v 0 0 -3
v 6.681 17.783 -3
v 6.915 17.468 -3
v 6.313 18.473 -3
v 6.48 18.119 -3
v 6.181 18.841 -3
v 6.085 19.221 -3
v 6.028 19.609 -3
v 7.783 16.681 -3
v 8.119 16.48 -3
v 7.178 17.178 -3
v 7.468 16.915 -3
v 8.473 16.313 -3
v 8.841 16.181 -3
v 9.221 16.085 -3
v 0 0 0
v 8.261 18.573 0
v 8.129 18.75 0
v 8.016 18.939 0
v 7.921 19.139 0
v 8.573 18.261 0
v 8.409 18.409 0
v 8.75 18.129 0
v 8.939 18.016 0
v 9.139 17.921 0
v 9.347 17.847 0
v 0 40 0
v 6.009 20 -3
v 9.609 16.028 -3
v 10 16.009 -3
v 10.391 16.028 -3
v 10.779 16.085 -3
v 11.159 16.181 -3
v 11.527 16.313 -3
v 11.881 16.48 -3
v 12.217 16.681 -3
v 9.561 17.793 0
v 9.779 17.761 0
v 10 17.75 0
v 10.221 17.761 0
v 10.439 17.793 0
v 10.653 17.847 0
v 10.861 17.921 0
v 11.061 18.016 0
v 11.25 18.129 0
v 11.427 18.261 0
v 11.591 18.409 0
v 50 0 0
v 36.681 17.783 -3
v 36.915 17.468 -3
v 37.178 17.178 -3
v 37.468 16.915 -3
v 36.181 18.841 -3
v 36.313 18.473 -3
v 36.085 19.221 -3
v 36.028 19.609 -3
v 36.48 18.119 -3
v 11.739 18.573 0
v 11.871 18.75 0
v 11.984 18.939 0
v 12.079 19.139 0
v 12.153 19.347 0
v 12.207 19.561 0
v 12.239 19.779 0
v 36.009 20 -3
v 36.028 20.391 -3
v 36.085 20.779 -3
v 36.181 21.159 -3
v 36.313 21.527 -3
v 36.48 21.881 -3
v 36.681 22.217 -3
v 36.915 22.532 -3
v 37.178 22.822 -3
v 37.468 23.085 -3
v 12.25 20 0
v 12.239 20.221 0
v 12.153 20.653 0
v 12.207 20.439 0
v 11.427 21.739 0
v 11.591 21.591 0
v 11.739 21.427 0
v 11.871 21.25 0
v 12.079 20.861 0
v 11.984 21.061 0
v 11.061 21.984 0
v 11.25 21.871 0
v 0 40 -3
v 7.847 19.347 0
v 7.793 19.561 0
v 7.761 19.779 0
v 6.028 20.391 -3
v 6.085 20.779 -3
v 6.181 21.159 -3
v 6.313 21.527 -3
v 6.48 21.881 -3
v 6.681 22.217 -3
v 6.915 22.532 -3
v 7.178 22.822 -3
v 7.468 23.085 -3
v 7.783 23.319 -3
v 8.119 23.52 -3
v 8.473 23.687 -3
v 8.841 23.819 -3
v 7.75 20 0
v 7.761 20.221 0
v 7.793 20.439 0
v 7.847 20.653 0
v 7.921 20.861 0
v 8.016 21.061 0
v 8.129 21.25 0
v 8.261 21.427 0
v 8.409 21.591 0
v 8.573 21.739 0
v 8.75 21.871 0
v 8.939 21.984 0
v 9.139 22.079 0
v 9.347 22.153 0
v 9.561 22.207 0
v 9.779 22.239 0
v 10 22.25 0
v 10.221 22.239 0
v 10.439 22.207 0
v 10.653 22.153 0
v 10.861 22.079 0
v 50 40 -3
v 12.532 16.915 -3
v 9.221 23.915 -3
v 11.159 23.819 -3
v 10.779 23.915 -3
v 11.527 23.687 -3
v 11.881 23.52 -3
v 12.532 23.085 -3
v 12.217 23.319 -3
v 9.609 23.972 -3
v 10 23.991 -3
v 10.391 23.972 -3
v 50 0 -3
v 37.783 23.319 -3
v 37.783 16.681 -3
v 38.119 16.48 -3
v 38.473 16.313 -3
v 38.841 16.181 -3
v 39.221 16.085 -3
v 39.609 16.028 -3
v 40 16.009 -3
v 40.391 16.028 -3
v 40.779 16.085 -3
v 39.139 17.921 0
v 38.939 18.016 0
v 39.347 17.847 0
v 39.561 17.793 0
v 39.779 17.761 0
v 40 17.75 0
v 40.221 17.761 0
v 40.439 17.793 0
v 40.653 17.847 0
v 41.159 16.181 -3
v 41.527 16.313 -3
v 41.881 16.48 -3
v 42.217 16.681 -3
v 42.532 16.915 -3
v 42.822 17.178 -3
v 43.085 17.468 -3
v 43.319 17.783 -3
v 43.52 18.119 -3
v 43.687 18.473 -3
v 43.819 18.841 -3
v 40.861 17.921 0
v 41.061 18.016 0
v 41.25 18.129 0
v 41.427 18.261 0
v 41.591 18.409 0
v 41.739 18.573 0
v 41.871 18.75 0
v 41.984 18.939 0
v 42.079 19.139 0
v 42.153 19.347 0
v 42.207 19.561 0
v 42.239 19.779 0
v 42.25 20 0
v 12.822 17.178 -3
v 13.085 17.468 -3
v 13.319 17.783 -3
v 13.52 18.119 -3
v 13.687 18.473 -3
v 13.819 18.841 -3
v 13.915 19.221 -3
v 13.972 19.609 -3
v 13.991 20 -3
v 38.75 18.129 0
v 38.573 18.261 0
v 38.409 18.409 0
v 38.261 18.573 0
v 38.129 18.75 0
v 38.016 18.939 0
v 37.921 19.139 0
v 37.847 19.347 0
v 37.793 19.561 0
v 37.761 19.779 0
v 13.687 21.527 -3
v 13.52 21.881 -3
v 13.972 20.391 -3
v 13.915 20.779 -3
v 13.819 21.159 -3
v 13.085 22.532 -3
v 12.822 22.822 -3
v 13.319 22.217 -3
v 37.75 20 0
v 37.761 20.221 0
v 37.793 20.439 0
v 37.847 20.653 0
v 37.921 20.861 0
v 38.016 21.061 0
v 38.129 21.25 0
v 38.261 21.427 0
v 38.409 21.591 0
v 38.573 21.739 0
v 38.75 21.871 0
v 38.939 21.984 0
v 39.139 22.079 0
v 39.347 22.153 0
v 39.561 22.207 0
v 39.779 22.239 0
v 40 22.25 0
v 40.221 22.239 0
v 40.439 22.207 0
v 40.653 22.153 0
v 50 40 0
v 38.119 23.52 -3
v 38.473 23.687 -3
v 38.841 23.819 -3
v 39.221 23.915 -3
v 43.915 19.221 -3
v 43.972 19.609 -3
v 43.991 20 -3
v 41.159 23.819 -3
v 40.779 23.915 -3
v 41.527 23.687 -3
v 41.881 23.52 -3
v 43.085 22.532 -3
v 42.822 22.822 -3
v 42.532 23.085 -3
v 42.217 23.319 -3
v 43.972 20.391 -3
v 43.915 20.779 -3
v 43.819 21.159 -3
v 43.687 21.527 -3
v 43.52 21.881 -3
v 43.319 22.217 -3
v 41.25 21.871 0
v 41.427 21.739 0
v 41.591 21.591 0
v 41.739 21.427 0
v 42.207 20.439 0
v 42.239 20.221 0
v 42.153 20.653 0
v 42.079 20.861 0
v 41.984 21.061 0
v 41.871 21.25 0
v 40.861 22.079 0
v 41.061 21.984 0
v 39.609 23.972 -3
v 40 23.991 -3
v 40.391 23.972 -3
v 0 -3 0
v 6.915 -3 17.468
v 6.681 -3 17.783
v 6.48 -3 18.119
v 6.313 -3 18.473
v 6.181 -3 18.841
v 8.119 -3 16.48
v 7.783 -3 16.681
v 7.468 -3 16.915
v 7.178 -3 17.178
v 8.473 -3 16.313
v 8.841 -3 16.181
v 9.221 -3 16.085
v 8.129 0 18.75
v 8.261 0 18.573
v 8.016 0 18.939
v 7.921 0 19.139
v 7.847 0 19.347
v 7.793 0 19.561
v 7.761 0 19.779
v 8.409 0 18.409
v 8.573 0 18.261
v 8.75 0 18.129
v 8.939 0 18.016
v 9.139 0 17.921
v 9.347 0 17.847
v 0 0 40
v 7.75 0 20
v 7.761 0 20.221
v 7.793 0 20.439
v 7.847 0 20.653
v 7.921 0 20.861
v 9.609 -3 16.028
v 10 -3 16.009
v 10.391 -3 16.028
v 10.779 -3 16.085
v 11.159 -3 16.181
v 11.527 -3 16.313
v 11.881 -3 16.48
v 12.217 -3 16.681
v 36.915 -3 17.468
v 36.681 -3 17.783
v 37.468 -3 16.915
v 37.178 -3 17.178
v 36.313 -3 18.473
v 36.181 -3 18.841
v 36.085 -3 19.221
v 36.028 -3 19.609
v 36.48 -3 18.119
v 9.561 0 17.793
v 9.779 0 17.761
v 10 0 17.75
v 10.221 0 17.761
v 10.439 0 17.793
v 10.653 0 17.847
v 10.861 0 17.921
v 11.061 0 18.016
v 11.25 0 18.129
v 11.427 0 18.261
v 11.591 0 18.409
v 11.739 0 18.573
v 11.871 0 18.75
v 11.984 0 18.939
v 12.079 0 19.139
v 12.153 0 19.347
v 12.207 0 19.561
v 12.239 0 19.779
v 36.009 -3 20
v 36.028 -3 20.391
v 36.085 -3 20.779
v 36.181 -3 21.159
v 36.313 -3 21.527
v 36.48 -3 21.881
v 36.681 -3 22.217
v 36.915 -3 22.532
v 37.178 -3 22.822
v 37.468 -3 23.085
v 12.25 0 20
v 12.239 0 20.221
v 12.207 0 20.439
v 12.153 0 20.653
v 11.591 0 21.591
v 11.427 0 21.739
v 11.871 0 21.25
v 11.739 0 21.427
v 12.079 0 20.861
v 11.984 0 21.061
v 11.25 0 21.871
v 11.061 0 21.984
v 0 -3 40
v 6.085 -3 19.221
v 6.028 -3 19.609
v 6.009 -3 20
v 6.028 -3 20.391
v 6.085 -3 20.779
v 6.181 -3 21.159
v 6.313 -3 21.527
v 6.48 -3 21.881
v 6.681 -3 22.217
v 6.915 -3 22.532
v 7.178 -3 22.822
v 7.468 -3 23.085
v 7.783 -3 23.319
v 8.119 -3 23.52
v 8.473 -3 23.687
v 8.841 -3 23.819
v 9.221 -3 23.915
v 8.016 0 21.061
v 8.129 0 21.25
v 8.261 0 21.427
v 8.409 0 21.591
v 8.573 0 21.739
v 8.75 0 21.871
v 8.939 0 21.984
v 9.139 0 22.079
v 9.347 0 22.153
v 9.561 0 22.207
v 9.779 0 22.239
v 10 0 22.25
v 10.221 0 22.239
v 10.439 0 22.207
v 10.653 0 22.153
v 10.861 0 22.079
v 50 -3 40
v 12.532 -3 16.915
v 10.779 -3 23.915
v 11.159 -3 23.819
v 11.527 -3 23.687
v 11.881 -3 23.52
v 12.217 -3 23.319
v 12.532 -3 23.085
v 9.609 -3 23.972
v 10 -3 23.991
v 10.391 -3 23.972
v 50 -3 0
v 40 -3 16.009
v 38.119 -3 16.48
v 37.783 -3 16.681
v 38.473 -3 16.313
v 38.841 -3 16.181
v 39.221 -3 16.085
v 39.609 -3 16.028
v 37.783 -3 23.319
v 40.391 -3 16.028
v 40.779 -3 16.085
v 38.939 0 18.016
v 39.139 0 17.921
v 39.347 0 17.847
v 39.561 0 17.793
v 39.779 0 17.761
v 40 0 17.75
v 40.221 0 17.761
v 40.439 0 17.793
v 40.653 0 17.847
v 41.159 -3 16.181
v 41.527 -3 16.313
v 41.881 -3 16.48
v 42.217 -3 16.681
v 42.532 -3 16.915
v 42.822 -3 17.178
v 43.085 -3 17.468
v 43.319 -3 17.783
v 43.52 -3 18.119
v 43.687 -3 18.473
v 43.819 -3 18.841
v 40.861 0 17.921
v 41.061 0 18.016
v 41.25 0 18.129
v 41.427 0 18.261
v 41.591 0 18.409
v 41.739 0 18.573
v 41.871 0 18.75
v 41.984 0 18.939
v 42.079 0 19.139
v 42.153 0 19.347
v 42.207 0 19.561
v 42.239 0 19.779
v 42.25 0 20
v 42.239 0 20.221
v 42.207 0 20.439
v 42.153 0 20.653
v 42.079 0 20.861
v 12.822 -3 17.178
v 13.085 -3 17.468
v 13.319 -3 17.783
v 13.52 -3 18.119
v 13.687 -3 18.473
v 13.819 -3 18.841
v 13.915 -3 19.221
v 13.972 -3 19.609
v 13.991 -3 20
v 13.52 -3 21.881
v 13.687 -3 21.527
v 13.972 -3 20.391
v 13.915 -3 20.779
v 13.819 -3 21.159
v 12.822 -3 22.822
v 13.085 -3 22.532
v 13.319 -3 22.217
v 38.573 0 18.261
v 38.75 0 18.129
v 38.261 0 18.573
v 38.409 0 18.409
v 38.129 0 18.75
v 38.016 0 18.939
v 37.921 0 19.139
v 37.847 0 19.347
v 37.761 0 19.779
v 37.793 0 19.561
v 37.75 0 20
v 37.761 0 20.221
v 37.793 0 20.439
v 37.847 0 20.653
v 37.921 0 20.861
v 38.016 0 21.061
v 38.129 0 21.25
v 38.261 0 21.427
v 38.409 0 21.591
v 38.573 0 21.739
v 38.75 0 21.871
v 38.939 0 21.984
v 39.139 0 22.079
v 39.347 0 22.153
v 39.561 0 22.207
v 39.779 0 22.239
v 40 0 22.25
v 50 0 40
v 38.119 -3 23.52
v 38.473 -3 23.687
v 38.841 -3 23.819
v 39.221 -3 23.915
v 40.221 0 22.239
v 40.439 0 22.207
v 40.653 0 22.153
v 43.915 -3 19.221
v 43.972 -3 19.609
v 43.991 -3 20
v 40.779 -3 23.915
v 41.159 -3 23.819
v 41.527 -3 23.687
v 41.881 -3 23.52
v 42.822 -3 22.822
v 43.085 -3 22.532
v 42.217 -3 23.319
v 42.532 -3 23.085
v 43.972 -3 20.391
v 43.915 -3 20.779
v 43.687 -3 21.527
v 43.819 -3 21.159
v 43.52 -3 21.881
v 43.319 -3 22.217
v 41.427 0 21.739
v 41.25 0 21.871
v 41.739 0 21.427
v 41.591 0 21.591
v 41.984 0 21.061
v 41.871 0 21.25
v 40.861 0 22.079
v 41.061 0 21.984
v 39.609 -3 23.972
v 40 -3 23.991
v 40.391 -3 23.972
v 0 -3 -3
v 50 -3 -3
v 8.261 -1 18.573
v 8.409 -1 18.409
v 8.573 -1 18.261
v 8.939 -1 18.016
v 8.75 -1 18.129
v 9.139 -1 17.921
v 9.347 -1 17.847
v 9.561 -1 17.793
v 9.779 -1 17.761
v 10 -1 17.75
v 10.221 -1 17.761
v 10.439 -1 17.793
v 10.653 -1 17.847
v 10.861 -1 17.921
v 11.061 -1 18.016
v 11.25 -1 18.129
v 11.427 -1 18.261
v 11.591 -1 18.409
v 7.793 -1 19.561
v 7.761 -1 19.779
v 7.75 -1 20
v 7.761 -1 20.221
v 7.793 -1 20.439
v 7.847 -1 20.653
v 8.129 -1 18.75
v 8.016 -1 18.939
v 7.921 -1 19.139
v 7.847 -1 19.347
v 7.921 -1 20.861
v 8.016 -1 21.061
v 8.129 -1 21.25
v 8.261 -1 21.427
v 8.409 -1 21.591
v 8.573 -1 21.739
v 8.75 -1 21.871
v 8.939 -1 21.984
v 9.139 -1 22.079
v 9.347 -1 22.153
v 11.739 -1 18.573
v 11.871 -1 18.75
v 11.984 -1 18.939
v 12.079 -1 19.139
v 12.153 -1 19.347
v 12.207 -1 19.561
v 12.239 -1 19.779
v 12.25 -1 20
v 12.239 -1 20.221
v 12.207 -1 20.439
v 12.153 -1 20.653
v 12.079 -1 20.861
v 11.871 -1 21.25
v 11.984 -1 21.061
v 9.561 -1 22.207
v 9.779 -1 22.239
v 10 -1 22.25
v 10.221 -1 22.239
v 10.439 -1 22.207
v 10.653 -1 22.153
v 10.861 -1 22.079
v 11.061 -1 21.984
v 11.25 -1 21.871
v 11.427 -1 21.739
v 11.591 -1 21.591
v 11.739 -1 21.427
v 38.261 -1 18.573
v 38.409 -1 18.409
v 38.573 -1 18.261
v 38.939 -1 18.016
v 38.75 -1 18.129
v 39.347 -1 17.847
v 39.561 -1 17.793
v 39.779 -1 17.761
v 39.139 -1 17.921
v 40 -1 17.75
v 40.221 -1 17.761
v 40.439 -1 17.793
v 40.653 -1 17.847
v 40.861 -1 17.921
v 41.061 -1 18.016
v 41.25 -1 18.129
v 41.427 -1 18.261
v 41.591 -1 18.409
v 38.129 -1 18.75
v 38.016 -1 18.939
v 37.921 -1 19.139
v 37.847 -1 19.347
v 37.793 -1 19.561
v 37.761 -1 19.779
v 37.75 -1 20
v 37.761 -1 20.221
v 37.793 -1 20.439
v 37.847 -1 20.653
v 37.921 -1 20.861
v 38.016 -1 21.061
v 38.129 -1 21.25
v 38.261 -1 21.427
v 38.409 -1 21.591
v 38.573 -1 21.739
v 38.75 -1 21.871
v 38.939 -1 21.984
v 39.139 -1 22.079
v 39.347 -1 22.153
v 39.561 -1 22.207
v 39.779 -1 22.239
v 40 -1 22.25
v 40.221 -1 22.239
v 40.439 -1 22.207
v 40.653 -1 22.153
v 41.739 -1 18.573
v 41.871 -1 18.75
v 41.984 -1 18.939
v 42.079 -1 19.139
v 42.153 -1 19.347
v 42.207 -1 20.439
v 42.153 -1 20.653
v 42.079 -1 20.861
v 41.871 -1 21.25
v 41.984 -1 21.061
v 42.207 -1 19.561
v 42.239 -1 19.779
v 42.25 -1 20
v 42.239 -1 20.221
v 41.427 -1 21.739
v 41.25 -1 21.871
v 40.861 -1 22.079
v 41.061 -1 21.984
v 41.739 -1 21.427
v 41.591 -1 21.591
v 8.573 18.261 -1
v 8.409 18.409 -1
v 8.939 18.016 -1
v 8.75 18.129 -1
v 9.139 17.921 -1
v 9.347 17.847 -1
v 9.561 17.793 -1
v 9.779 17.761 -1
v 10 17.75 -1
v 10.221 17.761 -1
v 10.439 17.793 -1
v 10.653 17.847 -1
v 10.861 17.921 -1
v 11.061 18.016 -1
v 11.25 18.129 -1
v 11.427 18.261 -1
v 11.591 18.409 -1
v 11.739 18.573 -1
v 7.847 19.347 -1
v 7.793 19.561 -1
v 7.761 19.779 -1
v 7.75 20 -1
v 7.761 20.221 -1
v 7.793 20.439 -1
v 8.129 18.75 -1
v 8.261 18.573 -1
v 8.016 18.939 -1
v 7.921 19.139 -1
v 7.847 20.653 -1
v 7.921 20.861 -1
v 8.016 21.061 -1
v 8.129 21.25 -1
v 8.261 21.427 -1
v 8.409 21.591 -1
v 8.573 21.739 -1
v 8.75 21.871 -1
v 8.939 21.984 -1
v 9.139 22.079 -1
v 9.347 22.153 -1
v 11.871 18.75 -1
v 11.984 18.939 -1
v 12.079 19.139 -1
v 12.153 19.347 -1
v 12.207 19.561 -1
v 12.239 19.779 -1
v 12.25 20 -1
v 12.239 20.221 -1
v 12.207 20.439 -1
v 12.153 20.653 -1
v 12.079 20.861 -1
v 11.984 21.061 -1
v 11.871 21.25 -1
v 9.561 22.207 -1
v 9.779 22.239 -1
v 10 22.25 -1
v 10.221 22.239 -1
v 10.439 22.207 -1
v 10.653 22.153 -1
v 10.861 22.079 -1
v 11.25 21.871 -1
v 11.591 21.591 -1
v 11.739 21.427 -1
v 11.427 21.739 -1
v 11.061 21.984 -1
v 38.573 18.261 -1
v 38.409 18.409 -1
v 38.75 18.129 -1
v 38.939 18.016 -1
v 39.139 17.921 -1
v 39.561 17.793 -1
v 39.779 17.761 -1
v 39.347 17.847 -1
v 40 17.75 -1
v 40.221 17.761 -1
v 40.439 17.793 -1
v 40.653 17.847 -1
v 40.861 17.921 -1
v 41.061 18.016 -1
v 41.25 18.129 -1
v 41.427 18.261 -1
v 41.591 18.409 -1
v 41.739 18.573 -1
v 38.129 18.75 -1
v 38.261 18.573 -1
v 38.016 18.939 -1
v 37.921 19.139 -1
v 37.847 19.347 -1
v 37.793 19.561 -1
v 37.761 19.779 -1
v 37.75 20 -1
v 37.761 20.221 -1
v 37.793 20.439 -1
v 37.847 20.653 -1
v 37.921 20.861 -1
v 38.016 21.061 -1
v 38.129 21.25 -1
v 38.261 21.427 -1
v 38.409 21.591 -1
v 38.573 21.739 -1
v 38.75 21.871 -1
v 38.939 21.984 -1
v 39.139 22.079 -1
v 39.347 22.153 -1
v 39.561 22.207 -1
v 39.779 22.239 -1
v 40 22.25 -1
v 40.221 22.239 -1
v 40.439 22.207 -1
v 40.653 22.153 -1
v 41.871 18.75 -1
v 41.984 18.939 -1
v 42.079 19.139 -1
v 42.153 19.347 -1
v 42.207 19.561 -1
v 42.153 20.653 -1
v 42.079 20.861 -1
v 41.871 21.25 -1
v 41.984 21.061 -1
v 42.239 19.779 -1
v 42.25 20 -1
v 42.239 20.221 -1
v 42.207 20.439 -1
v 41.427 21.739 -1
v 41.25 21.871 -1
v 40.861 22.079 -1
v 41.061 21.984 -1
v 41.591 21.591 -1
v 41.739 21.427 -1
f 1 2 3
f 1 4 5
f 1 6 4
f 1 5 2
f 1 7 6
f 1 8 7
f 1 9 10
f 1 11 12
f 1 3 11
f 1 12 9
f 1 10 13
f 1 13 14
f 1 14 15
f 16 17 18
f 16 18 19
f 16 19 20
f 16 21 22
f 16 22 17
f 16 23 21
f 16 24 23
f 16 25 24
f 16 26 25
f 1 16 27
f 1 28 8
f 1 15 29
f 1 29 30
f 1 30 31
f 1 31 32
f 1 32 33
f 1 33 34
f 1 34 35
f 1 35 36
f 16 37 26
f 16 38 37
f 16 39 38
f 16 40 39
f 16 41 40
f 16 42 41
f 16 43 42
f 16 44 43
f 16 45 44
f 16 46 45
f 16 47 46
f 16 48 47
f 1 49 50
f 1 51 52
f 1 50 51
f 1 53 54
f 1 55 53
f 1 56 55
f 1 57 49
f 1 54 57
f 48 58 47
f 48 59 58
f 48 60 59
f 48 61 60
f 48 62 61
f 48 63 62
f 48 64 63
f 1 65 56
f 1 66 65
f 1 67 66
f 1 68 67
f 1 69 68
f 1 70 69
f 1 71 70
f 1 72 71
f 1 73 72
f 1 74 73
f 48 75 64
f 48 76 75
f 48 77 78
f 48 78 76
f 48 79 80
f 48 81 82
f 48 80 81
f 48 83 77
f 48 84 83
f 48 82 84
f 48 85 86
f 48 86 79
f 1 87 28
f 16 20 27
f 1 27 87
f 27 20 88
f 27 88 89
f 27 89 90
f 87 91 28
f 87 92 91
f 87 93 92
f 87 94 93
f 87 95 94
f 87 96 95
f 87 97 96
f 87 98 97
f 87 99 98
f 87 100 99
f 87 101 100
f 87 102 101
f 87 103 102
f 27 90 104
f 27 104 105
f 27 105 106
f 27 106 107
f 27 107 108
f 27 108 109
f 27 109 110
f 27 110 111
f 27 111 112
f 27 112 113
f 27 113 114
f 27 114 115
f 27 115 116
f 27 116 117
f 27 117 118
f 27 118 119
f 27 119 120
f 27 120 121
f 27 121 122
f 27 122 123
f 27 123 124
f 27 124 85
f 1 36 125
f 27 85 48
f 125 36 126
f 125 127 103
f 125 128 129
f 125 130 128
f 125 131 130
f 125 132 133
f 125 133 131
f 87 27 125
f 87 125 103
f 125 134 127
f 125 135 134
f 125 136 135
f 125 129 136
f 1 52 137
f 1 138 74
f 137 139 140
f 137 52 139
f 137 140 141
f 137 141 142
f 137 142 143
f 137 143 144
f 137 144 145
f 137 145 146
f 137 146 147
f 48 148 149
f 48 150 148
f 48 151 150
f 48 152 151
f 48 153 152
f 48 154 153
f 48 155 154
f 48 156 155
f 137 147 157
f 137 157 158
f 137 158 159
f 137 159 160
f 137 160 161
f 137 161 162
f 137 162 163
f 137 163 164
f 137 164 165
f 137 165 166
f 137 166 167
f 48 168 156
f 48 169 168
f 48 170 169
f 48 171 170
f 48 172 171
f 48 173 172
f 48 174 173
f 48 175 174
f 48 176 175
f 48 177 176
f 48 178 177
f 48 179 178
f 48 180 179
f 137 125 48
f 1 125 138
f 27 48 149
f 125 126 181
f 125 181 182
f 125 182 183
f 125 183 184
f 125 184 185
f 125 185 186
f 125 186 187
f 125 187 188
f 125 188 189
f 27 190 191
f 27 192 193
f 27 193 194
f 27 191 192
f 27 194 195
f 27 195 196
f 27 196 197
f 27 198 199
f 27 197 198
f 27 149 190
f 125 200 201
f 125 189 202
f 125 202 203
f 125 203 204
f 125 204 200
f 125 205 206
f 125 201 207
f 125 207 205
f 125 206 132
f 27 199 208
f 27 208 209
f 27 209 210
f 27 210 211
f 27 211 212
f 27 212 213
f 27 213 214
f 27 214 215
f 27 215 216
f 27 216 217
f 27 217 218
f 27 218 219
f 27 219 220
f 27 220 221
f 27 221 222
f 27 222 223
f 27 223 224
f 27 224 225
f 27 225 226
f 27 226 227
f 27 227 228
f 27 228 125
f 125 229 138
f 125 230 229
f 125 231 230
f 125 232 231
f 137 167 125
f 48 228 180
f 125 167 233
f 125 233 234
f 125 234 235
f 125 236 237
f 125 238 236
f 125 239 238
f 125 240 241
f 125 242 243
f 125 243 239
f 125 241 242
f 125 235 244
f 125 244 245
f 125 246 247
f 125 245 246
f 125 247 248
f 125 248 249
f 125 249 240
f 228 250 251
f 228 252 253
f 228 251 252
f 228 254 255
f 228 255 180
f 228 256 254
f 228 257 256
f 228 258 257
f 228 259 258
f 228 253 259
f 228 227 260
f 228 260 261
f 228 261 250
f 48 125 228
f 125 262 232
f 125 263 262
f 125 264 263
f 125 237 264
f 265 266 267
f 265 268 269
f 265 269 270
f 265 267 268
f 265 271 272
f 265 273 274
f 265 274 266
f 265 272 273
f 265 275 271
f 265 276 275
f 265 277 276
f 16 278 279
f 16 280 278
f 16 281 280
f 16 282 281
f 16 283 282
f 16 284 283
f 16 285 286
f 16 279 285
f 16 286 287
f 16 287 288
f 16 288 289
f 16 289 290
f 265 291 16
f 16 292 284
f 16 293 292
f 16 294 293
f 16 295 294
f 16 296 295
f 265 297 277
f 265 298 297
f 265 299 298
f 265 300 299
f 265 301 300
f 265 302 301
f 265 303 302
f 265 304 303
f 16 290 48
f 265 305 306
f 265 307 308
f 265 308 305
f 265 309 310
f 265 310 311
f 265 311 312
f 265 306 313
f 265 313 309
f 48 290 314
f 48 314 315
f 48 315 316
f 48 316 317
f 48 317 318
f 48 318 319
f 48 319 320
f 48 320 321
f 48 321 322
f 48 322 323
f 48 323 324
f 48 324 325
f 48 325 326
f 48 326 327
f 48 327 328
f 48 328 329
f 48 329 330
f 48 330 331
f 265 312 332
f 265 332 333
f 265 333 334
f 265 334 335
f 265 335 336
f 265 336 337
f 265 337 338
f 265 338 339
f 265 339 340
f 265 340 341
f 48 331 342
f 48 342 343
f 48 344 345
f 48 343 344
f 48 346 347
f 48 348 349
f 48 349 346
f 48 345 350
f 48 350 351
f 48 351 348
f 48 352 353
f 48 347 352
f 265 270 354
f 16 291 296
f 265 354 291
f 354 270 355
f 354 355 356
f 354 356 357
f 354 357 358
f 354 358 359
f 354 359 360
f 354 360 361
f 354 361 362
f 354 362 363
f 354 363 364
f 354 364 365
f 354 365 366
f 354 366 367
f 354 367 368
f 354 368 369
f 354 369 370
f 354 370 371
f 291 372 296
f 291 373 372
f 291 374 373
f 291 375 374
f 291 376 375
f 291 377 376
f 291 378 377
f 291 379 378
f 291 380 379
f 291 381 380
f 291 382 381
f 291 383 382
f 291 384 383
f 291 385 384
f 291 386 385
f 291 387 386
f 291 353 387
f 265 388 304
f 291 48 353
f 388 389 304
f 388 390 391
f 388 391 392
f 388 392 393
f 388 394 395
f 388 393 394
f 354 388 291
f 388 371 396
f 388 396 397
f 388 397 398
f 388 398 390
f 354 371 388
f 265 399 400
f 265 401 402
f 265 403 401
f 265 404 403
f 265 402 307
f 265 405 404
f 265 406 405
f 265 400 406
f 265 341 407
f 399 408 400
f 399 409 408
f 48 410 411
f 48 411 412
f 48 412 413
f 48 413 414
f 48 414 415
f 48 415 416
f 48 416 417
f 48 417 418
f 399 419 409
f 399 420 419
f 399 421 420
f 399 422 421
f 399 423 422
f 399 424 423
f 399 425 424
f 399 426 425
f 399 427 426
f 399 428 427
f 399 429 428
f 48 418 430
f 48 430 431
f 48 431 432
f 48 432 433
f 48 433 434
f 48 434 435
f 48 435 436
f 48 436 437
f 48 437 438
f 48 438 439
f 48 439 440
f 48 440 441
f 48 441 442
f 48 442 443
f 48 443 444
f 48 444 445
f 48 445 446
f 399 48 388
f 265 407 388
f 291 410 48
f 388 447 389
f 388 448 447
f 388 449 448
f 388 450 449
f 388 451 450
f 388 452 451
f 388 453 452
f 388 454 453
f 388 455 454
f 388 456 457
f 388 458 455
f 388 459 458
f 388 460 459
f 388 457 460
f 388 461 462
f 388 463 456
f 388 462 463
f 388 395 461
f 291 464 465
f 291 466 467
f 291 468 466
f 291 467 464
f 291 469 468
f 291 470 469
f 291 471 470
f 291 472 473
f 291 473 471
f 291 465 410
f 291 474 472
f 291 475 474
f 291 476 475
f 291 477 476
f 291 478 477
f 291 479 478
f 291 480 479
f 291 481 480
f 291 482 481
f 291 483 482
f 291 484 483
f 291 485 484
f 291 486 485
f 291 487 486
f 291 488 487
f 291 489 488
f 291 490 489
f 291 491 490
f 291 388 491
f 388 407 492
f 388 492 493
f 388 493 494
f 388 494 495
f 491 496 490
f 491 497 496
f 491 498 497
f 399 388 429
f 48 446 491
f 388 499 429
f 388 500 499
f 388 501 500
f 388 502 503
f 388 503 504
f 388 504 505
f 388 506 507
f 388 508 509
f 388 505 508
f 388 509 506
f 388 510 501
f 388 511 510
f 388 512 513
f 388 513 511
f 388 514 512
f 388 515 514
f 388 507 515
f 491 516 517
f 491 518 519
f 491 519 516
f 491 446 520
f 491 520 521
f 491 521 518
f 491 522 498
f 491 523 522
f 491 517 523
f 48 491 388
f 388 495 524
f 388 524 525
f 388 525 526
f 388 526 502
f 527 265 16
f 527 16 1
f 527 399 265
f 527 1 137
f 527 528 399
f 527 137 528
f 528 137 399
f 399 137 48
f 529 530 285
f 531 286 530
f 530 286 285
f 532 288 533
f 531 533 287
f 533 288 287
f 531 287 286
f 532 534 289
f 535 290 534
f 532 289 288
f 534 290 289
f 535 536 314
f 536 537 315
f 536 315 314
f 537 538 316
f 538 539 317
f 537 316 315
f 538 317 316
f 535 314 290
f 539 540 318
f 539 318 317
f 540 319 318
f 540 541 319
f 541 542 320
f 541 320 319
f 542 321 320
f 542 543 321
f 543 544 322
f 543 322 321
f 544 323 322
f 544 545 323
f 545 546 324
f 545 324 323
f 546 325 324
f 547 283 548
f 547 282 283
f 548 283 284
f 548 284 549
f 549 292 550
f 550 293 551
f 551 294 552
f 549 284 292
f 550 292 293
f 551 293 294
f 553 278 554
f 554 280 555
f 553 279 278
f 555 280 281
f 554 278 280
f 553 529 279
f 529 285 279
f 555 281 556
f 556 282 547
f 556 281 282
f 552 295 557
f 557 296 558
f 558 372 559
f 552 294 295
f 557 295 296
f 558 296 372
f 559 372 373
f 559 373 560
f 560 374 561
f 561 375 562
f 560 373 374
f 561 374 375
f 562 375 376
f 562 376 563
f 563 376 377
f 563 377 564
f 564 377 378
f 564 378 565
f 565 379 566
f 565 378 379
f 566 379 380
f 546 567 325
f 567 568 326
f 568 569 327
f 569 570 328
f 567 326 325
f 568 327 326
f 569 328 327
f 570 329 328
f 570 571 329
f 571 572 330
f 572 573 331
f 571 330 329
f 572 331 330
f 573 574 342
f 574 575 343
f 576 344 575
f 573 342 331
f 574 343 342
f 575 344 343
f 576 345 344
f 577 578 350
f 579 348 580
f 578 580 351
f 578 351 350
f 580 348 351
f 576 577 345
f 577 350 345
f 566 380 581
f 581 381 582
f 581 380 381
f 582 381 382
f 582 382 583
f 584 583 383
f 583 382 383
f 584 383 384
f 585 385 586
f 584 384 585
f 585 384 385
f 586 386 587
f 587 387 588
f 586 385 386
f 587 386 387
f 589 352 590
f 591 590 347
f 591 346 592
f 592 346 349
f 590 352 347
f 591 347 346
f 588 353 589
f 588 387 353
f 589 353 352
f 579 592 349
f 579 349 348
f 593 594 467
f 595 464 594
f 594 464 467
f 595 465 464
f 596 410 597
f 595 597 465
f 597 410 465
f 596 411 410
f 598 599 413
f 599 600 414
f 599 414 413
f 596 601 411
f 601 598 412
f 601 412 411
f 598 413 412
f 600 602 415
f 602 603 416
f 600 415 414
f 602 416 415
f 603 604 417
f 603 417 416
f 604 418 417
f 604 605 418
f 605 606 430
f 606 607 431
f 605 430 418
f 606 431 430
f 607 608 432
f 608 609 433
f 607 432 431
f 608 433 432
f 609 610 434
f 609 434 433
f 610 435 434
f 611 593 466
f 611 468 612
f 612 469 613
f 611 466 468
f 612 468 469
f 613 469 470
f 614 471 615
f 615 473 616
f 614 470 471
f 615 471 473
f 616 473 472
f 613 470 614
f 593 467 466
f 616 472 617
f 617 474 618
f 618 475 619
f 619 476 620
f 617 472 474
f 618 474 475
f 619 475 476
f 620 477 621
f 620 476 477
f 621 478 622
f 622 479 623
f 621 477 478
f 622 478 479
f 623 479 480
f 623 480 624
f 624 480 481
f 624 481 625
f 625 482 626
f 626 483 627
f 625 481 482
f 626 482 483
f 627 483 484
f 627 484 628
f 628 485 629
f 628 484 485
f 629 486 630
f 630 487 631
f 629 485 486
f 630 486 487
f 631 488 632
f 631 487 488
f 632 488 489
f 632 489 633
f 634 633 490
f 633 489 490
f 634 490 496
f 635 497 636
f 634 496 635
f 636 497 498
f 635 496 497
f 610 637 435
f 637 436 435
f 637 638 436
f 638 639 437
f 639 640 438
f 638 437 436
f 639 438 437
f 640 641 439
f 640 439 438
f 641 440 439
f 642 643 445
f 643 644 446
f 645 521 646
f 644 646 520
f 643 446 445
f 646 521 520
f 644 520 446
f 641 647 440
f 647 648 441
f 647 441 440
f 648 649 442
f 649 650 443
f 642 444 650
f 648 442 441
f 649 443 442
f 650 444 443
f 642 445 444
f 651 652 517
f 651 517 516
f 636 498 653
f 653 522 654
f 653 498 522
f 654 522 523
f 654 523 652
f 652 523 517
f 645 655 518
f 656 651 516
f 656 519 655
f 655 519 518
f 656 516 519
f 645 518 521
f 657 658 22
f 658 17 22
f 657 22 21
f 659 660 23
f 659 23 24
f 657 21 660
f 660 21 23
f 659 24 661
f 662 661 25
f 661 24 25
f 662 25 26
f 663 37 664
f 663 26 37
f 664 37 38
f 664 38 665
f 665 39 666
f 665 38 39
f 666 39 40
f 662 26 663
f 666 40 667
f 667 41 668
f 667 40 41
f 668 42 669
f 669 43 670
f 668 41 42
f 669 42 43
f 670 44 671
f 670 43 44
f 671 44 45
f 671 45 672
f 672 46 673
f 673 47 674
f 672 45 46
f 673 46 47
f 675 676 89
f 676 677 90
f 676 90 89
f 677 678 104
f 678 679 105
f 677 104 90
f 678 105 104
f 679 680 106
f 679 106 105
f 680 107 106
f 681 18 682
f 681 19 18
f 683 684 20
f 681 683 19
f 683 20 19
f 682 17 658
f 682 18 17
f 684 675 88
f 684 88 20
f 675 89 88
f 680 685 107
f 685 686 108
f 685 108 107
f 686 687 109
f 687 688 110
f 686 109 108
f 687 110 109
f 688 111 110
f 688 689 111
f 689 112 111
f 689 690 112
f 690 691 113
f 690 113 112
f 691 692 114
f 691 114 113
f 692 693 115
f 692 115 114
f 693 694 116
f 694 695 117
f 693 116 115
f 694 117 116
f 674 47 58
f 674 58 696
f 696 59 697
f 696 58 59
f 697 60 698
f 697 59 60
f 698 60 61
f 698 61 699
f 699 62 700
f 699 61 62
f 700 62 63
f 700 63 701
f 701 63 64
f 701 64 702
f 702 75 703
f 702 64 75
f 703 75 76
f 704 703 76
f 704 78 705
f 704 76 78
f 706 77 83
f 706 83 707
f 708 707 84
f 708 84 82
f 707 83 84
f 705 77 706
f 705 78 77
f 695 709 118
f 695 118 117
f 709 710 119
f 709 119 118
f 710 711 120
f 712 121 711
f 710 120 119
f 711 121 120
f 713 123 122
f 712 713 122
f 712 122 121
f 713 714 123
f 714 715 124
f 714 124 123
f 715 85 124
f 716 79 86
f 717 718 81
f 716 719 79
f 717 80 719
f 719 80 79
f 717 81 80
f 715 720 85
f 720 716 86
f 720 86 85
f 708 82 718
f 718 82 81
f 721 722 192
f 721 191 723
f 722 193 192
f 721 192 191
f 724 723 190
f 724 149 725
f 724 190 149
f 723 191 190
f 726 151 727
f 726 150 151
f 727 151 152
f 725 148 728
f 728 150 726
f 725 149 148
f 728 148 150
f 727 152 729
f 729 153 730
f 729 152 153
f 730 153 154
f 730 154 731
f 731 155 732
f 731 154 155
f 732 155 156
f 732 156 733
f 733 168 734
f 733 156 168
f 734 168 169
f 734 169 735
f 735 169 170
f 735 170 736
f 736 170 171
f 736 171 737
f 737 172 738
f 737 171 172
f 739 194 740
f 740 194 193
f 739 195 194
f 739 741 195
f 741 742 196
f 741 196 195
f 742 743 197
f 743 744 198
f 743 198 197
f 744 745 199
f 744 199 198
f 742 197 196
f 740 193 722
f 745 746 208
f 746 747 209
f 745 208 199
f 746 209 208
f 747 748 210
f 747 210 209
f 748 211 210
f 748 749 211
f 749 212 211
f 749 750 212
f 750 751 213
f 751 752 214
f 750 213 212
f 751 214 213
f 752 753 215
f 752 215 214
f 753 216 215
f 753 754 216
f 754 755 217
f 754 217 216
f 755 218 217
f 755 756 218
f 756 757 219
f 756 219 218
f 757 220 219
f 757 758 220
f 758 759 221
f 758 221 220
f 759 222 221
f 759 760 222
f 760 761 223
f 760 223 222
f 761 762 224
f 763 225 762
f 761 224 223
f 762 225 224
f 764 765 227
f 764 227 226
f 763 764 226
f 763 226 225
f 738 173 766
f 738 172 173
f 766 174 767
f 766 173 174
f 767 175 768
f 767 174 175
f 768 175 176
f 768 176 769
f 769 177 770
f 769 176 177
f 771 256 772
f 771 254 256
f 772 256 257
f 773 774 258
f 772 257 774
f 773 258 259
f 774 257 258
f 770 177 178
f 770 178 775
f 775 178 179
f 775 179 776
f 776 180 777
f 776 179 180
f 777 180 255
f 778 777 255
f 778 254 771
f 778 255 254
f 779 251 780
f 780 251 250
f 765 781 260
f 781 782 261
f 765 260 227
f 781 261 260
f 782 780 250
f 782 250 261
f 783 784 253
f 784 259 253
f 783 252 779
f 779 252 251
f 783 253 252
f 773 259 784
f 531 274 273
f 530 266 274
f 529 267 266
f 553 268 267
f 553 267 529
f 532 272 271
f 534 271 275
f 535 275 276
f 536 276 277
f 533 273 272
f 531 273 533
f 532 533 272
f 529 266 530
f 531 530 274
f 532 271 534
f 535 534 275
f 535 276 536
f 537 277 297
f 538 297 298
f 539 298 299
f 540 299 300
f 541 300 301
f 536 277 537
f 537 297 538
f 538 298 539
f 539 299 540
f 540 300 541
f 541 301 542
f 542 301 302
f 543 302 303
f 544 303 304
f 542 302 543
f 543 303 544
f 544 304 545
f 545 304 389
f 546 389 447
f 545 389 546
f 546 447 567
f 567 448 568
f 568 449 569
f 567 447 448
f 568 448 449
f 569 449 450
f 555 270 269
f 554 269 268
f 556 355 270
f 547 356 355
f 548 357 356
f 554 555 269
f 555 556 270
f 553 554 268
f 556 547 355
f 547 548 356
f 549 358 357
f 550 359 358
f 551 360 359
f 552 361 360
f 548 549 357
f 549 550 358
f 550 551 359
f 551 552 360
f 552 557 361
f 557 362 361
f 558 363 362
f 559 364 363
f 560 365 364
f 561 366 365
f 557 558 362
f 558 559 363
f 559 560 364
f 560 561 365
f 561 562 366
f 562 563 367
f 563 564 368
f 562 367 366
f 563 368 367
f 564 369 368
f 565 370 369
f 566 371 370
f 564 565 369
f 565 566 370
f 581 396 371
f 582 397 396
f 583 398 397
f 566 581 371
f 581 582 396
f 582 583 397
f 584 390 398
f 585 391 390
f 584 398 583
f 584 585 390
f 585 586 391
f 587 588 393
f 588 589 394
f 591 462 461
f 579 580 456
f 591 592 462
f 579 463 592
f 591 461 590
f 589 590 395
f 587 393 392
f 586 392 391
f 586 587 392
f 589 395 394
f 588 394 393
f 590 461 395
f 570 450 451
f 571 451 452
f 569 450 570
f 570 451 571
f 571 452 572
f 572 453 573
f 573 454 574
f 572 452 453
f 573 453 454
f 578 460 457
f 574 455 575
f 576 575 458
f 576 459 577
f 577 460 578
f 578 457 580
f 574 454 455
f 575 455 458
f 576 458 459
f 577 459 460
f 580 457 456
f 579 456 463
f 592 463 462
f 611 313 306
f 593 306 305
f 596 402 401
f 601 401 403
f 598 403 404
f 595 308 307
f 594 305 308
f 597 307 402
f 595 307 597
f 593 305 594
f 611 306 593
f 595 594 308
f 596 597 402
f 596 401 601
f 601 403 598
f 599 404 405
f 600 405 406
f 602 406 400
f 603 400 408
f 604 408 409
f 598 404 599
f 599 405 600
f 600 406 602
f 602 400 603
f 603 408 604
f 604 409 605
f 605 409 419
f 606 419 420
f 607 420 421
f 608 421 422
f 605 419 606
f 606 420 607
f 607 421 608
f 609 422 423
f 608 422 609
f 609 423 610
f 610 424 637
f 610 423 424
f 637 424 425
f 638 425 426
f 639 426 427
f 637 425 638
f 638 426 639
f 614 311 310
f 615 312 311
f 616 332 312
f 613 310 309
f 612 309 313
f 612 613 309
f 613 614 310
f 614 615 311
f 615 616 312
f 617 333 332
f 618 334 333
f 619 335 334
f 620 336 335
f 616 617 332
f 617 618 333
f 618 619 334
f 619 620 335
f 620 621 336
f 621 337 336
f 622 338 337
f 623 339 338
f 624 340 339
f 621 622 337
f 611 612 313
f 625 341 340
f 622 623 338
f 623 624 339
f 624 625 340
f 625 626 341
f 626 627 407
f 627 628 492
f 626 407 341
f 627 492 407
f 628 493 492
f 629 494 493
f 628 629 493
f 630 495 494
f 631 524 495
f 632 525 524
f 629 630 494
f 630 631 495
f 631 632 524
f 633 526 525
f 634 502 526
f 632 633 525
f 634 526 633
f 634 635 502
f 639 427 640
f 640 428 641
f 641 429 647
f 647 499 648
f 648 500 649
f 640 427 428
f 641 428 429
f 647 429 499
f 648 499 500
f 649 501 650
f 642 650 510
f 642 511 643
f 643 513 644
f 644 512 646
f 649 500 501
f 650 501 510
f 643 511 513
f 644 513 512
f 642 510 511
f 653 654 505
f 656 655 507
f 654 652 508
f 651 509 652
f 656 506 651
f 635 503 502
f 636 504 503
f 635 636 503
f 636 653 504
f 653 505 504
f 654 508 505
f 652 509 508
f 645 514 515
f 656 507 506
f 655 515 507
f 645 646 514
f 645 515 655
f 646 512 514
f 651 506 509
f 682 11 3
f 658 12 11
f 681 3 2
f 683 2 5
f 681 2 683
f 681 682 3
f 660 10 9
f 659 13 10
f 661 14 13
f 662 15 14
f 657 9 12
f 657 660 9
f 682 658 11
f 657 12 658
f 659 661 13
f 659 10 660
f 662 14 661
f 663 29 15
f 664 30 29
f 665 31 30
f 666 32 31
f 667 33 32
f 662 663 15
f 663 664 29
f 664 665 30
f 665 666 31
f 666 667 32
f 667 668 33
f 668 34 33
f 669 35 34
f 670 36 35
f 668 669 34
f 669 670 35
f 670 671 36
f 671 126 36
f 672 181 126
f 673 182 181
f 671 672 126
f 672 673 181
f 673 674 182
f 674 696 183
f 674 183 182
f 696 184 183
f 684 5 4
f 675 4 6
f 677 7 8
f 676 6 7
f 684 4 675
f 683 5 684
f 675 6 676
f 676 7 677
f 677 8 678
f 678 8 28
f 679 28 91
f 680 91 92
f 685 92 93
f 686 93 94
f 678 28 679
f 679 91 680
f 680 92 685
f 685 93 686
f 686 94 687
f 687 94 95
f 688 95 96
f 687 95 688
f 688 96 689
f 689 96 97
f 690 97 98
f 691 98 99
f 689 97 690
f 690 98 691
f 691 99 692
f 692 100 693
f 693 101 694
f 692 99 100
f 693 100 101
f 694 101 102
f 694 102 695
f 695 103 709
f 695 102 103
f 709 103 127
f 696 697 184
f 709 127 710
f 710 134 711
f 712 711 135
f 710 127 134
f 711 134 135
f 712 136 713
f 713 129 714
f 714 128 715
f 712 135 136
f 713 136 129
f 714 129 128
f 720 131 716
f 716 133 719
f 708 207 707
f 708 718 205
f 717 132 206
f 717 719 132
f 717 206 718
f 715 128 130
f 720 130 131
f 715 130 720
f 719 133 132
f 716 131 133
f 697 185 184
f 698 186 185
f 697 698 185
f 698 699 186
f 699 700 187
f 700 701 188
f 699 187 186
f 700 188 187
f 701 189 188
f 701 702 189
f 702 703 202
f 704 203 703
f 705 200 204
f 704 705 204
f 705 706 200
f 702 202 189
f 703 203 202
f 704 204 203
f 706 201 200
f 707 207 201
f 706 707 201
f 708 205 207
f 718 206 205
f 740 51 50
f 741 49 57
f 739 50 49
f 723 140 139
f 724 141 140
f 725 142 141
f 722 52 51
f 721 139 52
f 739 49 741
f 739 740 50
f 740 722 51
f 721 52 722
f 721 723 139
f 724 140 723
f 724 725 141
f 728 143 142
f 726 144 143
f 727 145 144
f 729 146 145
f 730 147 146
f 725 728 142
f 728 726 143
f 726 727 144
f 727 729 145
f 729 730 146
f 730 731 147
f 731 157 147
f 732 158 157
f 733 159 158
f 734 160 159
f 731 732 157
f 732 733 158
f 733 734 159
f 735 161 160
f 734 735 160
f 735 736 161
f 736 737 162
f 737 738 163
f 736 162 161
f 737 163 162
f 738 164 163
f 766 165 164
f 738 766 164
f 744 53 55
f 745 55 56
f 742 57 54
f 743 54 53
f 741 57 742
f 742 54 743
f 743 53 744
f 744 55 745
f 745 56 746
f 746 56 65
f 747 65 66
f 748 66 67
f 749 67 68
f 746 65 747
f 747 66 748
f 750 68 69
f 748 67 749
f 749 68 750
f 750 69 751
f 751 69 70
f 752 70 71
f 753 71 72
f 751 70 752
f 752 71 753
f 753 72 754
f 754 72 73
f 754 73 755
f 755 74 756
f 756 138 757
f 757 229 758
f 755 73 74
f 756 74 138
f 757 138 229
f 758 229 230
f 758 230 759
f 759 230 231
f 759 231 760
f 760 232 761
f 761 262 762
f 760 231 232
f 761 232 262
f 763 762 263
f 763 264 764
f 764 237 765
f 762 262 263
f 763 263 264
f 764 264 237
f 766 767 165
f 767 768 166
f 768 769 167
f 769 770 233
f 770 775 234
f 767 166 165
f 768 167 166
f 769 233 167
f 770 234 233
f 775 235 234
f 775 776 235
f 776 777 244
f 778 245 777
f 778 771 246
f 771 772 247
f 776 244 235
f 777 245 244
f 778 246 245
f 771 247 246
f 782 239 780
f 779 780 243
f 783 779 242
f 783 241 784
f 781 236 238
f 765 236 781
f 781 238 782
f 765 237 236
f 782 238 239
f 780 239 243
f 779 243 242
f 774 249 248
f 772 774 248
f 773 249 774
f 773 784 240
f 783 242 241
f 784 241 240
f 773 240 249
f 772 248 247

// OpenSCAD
$fn = 64;

// 寸法パラメータ
width = 50;        // 幅 (X)
length_y = 40;     // 水平面奥行き (Y)
height_z = 40;     // 垂直面高さ (Z)
thickness = 3;     // 板厚

// 皿穴パラメータ
d_through = 4.5;   // 貫通穴径
d_cs = 8.0;        // 皿頭最大径
depth_cs = 2.0;    // 皿座面深さ
margin_x = 10;     // 左右端からの距離

// 皿穴モジュール (+Z方向へ向かってボルトが貫通)
module countersunk_hole() {
    union() {
        // 貫通穴
        translate([0, 0, -1])
            cylinder(d = d_through, h = thickness + 2);
        // 皿座面 (外側から内側に向けて縮径)
        translate([0, 0, -0.01])
            cylinder(d1 = d_cs, d2 = d_through, h = depth_cs + 0.01);
    }
}

difference() {
    // L字金具本体 (内側コーナーが [X, 0, 0])
    union() {
        // 水平面 (+Y方向, Zは -thickness 〜 0)
        translate([0, 0, -thickness])
            cube([width, length_y, thickness]);

        // 垂直面 (+Z方向, Yは -thickness 〜 0)
        translate([0, -thickness, 0])
            cube([width, thickness, height_z]);

        // コーナー結合部
        translate([0, -thickness, -thickness])
            cube([width, thickness, thickness]);
    }

    // 水平面の皿穴 (外側の面 Z = -thickness から +Z 方向へ)
    for (x_pos = [margin_x, width - margin_x]) {
        translate([x_pos, length_y / 2, -thickness])
            countersunk_hole();
    }

    // 垂直面の皿穴 (外側の面 Y = -thickness から +Y 方向へ)
    for (x_pos = [margin_x, width - margin_x]) {
        translate([x_pos, -thickness, height_z / 2])
            rotate([-90, 0, 0])
                countersunk_hole();
    }
}
